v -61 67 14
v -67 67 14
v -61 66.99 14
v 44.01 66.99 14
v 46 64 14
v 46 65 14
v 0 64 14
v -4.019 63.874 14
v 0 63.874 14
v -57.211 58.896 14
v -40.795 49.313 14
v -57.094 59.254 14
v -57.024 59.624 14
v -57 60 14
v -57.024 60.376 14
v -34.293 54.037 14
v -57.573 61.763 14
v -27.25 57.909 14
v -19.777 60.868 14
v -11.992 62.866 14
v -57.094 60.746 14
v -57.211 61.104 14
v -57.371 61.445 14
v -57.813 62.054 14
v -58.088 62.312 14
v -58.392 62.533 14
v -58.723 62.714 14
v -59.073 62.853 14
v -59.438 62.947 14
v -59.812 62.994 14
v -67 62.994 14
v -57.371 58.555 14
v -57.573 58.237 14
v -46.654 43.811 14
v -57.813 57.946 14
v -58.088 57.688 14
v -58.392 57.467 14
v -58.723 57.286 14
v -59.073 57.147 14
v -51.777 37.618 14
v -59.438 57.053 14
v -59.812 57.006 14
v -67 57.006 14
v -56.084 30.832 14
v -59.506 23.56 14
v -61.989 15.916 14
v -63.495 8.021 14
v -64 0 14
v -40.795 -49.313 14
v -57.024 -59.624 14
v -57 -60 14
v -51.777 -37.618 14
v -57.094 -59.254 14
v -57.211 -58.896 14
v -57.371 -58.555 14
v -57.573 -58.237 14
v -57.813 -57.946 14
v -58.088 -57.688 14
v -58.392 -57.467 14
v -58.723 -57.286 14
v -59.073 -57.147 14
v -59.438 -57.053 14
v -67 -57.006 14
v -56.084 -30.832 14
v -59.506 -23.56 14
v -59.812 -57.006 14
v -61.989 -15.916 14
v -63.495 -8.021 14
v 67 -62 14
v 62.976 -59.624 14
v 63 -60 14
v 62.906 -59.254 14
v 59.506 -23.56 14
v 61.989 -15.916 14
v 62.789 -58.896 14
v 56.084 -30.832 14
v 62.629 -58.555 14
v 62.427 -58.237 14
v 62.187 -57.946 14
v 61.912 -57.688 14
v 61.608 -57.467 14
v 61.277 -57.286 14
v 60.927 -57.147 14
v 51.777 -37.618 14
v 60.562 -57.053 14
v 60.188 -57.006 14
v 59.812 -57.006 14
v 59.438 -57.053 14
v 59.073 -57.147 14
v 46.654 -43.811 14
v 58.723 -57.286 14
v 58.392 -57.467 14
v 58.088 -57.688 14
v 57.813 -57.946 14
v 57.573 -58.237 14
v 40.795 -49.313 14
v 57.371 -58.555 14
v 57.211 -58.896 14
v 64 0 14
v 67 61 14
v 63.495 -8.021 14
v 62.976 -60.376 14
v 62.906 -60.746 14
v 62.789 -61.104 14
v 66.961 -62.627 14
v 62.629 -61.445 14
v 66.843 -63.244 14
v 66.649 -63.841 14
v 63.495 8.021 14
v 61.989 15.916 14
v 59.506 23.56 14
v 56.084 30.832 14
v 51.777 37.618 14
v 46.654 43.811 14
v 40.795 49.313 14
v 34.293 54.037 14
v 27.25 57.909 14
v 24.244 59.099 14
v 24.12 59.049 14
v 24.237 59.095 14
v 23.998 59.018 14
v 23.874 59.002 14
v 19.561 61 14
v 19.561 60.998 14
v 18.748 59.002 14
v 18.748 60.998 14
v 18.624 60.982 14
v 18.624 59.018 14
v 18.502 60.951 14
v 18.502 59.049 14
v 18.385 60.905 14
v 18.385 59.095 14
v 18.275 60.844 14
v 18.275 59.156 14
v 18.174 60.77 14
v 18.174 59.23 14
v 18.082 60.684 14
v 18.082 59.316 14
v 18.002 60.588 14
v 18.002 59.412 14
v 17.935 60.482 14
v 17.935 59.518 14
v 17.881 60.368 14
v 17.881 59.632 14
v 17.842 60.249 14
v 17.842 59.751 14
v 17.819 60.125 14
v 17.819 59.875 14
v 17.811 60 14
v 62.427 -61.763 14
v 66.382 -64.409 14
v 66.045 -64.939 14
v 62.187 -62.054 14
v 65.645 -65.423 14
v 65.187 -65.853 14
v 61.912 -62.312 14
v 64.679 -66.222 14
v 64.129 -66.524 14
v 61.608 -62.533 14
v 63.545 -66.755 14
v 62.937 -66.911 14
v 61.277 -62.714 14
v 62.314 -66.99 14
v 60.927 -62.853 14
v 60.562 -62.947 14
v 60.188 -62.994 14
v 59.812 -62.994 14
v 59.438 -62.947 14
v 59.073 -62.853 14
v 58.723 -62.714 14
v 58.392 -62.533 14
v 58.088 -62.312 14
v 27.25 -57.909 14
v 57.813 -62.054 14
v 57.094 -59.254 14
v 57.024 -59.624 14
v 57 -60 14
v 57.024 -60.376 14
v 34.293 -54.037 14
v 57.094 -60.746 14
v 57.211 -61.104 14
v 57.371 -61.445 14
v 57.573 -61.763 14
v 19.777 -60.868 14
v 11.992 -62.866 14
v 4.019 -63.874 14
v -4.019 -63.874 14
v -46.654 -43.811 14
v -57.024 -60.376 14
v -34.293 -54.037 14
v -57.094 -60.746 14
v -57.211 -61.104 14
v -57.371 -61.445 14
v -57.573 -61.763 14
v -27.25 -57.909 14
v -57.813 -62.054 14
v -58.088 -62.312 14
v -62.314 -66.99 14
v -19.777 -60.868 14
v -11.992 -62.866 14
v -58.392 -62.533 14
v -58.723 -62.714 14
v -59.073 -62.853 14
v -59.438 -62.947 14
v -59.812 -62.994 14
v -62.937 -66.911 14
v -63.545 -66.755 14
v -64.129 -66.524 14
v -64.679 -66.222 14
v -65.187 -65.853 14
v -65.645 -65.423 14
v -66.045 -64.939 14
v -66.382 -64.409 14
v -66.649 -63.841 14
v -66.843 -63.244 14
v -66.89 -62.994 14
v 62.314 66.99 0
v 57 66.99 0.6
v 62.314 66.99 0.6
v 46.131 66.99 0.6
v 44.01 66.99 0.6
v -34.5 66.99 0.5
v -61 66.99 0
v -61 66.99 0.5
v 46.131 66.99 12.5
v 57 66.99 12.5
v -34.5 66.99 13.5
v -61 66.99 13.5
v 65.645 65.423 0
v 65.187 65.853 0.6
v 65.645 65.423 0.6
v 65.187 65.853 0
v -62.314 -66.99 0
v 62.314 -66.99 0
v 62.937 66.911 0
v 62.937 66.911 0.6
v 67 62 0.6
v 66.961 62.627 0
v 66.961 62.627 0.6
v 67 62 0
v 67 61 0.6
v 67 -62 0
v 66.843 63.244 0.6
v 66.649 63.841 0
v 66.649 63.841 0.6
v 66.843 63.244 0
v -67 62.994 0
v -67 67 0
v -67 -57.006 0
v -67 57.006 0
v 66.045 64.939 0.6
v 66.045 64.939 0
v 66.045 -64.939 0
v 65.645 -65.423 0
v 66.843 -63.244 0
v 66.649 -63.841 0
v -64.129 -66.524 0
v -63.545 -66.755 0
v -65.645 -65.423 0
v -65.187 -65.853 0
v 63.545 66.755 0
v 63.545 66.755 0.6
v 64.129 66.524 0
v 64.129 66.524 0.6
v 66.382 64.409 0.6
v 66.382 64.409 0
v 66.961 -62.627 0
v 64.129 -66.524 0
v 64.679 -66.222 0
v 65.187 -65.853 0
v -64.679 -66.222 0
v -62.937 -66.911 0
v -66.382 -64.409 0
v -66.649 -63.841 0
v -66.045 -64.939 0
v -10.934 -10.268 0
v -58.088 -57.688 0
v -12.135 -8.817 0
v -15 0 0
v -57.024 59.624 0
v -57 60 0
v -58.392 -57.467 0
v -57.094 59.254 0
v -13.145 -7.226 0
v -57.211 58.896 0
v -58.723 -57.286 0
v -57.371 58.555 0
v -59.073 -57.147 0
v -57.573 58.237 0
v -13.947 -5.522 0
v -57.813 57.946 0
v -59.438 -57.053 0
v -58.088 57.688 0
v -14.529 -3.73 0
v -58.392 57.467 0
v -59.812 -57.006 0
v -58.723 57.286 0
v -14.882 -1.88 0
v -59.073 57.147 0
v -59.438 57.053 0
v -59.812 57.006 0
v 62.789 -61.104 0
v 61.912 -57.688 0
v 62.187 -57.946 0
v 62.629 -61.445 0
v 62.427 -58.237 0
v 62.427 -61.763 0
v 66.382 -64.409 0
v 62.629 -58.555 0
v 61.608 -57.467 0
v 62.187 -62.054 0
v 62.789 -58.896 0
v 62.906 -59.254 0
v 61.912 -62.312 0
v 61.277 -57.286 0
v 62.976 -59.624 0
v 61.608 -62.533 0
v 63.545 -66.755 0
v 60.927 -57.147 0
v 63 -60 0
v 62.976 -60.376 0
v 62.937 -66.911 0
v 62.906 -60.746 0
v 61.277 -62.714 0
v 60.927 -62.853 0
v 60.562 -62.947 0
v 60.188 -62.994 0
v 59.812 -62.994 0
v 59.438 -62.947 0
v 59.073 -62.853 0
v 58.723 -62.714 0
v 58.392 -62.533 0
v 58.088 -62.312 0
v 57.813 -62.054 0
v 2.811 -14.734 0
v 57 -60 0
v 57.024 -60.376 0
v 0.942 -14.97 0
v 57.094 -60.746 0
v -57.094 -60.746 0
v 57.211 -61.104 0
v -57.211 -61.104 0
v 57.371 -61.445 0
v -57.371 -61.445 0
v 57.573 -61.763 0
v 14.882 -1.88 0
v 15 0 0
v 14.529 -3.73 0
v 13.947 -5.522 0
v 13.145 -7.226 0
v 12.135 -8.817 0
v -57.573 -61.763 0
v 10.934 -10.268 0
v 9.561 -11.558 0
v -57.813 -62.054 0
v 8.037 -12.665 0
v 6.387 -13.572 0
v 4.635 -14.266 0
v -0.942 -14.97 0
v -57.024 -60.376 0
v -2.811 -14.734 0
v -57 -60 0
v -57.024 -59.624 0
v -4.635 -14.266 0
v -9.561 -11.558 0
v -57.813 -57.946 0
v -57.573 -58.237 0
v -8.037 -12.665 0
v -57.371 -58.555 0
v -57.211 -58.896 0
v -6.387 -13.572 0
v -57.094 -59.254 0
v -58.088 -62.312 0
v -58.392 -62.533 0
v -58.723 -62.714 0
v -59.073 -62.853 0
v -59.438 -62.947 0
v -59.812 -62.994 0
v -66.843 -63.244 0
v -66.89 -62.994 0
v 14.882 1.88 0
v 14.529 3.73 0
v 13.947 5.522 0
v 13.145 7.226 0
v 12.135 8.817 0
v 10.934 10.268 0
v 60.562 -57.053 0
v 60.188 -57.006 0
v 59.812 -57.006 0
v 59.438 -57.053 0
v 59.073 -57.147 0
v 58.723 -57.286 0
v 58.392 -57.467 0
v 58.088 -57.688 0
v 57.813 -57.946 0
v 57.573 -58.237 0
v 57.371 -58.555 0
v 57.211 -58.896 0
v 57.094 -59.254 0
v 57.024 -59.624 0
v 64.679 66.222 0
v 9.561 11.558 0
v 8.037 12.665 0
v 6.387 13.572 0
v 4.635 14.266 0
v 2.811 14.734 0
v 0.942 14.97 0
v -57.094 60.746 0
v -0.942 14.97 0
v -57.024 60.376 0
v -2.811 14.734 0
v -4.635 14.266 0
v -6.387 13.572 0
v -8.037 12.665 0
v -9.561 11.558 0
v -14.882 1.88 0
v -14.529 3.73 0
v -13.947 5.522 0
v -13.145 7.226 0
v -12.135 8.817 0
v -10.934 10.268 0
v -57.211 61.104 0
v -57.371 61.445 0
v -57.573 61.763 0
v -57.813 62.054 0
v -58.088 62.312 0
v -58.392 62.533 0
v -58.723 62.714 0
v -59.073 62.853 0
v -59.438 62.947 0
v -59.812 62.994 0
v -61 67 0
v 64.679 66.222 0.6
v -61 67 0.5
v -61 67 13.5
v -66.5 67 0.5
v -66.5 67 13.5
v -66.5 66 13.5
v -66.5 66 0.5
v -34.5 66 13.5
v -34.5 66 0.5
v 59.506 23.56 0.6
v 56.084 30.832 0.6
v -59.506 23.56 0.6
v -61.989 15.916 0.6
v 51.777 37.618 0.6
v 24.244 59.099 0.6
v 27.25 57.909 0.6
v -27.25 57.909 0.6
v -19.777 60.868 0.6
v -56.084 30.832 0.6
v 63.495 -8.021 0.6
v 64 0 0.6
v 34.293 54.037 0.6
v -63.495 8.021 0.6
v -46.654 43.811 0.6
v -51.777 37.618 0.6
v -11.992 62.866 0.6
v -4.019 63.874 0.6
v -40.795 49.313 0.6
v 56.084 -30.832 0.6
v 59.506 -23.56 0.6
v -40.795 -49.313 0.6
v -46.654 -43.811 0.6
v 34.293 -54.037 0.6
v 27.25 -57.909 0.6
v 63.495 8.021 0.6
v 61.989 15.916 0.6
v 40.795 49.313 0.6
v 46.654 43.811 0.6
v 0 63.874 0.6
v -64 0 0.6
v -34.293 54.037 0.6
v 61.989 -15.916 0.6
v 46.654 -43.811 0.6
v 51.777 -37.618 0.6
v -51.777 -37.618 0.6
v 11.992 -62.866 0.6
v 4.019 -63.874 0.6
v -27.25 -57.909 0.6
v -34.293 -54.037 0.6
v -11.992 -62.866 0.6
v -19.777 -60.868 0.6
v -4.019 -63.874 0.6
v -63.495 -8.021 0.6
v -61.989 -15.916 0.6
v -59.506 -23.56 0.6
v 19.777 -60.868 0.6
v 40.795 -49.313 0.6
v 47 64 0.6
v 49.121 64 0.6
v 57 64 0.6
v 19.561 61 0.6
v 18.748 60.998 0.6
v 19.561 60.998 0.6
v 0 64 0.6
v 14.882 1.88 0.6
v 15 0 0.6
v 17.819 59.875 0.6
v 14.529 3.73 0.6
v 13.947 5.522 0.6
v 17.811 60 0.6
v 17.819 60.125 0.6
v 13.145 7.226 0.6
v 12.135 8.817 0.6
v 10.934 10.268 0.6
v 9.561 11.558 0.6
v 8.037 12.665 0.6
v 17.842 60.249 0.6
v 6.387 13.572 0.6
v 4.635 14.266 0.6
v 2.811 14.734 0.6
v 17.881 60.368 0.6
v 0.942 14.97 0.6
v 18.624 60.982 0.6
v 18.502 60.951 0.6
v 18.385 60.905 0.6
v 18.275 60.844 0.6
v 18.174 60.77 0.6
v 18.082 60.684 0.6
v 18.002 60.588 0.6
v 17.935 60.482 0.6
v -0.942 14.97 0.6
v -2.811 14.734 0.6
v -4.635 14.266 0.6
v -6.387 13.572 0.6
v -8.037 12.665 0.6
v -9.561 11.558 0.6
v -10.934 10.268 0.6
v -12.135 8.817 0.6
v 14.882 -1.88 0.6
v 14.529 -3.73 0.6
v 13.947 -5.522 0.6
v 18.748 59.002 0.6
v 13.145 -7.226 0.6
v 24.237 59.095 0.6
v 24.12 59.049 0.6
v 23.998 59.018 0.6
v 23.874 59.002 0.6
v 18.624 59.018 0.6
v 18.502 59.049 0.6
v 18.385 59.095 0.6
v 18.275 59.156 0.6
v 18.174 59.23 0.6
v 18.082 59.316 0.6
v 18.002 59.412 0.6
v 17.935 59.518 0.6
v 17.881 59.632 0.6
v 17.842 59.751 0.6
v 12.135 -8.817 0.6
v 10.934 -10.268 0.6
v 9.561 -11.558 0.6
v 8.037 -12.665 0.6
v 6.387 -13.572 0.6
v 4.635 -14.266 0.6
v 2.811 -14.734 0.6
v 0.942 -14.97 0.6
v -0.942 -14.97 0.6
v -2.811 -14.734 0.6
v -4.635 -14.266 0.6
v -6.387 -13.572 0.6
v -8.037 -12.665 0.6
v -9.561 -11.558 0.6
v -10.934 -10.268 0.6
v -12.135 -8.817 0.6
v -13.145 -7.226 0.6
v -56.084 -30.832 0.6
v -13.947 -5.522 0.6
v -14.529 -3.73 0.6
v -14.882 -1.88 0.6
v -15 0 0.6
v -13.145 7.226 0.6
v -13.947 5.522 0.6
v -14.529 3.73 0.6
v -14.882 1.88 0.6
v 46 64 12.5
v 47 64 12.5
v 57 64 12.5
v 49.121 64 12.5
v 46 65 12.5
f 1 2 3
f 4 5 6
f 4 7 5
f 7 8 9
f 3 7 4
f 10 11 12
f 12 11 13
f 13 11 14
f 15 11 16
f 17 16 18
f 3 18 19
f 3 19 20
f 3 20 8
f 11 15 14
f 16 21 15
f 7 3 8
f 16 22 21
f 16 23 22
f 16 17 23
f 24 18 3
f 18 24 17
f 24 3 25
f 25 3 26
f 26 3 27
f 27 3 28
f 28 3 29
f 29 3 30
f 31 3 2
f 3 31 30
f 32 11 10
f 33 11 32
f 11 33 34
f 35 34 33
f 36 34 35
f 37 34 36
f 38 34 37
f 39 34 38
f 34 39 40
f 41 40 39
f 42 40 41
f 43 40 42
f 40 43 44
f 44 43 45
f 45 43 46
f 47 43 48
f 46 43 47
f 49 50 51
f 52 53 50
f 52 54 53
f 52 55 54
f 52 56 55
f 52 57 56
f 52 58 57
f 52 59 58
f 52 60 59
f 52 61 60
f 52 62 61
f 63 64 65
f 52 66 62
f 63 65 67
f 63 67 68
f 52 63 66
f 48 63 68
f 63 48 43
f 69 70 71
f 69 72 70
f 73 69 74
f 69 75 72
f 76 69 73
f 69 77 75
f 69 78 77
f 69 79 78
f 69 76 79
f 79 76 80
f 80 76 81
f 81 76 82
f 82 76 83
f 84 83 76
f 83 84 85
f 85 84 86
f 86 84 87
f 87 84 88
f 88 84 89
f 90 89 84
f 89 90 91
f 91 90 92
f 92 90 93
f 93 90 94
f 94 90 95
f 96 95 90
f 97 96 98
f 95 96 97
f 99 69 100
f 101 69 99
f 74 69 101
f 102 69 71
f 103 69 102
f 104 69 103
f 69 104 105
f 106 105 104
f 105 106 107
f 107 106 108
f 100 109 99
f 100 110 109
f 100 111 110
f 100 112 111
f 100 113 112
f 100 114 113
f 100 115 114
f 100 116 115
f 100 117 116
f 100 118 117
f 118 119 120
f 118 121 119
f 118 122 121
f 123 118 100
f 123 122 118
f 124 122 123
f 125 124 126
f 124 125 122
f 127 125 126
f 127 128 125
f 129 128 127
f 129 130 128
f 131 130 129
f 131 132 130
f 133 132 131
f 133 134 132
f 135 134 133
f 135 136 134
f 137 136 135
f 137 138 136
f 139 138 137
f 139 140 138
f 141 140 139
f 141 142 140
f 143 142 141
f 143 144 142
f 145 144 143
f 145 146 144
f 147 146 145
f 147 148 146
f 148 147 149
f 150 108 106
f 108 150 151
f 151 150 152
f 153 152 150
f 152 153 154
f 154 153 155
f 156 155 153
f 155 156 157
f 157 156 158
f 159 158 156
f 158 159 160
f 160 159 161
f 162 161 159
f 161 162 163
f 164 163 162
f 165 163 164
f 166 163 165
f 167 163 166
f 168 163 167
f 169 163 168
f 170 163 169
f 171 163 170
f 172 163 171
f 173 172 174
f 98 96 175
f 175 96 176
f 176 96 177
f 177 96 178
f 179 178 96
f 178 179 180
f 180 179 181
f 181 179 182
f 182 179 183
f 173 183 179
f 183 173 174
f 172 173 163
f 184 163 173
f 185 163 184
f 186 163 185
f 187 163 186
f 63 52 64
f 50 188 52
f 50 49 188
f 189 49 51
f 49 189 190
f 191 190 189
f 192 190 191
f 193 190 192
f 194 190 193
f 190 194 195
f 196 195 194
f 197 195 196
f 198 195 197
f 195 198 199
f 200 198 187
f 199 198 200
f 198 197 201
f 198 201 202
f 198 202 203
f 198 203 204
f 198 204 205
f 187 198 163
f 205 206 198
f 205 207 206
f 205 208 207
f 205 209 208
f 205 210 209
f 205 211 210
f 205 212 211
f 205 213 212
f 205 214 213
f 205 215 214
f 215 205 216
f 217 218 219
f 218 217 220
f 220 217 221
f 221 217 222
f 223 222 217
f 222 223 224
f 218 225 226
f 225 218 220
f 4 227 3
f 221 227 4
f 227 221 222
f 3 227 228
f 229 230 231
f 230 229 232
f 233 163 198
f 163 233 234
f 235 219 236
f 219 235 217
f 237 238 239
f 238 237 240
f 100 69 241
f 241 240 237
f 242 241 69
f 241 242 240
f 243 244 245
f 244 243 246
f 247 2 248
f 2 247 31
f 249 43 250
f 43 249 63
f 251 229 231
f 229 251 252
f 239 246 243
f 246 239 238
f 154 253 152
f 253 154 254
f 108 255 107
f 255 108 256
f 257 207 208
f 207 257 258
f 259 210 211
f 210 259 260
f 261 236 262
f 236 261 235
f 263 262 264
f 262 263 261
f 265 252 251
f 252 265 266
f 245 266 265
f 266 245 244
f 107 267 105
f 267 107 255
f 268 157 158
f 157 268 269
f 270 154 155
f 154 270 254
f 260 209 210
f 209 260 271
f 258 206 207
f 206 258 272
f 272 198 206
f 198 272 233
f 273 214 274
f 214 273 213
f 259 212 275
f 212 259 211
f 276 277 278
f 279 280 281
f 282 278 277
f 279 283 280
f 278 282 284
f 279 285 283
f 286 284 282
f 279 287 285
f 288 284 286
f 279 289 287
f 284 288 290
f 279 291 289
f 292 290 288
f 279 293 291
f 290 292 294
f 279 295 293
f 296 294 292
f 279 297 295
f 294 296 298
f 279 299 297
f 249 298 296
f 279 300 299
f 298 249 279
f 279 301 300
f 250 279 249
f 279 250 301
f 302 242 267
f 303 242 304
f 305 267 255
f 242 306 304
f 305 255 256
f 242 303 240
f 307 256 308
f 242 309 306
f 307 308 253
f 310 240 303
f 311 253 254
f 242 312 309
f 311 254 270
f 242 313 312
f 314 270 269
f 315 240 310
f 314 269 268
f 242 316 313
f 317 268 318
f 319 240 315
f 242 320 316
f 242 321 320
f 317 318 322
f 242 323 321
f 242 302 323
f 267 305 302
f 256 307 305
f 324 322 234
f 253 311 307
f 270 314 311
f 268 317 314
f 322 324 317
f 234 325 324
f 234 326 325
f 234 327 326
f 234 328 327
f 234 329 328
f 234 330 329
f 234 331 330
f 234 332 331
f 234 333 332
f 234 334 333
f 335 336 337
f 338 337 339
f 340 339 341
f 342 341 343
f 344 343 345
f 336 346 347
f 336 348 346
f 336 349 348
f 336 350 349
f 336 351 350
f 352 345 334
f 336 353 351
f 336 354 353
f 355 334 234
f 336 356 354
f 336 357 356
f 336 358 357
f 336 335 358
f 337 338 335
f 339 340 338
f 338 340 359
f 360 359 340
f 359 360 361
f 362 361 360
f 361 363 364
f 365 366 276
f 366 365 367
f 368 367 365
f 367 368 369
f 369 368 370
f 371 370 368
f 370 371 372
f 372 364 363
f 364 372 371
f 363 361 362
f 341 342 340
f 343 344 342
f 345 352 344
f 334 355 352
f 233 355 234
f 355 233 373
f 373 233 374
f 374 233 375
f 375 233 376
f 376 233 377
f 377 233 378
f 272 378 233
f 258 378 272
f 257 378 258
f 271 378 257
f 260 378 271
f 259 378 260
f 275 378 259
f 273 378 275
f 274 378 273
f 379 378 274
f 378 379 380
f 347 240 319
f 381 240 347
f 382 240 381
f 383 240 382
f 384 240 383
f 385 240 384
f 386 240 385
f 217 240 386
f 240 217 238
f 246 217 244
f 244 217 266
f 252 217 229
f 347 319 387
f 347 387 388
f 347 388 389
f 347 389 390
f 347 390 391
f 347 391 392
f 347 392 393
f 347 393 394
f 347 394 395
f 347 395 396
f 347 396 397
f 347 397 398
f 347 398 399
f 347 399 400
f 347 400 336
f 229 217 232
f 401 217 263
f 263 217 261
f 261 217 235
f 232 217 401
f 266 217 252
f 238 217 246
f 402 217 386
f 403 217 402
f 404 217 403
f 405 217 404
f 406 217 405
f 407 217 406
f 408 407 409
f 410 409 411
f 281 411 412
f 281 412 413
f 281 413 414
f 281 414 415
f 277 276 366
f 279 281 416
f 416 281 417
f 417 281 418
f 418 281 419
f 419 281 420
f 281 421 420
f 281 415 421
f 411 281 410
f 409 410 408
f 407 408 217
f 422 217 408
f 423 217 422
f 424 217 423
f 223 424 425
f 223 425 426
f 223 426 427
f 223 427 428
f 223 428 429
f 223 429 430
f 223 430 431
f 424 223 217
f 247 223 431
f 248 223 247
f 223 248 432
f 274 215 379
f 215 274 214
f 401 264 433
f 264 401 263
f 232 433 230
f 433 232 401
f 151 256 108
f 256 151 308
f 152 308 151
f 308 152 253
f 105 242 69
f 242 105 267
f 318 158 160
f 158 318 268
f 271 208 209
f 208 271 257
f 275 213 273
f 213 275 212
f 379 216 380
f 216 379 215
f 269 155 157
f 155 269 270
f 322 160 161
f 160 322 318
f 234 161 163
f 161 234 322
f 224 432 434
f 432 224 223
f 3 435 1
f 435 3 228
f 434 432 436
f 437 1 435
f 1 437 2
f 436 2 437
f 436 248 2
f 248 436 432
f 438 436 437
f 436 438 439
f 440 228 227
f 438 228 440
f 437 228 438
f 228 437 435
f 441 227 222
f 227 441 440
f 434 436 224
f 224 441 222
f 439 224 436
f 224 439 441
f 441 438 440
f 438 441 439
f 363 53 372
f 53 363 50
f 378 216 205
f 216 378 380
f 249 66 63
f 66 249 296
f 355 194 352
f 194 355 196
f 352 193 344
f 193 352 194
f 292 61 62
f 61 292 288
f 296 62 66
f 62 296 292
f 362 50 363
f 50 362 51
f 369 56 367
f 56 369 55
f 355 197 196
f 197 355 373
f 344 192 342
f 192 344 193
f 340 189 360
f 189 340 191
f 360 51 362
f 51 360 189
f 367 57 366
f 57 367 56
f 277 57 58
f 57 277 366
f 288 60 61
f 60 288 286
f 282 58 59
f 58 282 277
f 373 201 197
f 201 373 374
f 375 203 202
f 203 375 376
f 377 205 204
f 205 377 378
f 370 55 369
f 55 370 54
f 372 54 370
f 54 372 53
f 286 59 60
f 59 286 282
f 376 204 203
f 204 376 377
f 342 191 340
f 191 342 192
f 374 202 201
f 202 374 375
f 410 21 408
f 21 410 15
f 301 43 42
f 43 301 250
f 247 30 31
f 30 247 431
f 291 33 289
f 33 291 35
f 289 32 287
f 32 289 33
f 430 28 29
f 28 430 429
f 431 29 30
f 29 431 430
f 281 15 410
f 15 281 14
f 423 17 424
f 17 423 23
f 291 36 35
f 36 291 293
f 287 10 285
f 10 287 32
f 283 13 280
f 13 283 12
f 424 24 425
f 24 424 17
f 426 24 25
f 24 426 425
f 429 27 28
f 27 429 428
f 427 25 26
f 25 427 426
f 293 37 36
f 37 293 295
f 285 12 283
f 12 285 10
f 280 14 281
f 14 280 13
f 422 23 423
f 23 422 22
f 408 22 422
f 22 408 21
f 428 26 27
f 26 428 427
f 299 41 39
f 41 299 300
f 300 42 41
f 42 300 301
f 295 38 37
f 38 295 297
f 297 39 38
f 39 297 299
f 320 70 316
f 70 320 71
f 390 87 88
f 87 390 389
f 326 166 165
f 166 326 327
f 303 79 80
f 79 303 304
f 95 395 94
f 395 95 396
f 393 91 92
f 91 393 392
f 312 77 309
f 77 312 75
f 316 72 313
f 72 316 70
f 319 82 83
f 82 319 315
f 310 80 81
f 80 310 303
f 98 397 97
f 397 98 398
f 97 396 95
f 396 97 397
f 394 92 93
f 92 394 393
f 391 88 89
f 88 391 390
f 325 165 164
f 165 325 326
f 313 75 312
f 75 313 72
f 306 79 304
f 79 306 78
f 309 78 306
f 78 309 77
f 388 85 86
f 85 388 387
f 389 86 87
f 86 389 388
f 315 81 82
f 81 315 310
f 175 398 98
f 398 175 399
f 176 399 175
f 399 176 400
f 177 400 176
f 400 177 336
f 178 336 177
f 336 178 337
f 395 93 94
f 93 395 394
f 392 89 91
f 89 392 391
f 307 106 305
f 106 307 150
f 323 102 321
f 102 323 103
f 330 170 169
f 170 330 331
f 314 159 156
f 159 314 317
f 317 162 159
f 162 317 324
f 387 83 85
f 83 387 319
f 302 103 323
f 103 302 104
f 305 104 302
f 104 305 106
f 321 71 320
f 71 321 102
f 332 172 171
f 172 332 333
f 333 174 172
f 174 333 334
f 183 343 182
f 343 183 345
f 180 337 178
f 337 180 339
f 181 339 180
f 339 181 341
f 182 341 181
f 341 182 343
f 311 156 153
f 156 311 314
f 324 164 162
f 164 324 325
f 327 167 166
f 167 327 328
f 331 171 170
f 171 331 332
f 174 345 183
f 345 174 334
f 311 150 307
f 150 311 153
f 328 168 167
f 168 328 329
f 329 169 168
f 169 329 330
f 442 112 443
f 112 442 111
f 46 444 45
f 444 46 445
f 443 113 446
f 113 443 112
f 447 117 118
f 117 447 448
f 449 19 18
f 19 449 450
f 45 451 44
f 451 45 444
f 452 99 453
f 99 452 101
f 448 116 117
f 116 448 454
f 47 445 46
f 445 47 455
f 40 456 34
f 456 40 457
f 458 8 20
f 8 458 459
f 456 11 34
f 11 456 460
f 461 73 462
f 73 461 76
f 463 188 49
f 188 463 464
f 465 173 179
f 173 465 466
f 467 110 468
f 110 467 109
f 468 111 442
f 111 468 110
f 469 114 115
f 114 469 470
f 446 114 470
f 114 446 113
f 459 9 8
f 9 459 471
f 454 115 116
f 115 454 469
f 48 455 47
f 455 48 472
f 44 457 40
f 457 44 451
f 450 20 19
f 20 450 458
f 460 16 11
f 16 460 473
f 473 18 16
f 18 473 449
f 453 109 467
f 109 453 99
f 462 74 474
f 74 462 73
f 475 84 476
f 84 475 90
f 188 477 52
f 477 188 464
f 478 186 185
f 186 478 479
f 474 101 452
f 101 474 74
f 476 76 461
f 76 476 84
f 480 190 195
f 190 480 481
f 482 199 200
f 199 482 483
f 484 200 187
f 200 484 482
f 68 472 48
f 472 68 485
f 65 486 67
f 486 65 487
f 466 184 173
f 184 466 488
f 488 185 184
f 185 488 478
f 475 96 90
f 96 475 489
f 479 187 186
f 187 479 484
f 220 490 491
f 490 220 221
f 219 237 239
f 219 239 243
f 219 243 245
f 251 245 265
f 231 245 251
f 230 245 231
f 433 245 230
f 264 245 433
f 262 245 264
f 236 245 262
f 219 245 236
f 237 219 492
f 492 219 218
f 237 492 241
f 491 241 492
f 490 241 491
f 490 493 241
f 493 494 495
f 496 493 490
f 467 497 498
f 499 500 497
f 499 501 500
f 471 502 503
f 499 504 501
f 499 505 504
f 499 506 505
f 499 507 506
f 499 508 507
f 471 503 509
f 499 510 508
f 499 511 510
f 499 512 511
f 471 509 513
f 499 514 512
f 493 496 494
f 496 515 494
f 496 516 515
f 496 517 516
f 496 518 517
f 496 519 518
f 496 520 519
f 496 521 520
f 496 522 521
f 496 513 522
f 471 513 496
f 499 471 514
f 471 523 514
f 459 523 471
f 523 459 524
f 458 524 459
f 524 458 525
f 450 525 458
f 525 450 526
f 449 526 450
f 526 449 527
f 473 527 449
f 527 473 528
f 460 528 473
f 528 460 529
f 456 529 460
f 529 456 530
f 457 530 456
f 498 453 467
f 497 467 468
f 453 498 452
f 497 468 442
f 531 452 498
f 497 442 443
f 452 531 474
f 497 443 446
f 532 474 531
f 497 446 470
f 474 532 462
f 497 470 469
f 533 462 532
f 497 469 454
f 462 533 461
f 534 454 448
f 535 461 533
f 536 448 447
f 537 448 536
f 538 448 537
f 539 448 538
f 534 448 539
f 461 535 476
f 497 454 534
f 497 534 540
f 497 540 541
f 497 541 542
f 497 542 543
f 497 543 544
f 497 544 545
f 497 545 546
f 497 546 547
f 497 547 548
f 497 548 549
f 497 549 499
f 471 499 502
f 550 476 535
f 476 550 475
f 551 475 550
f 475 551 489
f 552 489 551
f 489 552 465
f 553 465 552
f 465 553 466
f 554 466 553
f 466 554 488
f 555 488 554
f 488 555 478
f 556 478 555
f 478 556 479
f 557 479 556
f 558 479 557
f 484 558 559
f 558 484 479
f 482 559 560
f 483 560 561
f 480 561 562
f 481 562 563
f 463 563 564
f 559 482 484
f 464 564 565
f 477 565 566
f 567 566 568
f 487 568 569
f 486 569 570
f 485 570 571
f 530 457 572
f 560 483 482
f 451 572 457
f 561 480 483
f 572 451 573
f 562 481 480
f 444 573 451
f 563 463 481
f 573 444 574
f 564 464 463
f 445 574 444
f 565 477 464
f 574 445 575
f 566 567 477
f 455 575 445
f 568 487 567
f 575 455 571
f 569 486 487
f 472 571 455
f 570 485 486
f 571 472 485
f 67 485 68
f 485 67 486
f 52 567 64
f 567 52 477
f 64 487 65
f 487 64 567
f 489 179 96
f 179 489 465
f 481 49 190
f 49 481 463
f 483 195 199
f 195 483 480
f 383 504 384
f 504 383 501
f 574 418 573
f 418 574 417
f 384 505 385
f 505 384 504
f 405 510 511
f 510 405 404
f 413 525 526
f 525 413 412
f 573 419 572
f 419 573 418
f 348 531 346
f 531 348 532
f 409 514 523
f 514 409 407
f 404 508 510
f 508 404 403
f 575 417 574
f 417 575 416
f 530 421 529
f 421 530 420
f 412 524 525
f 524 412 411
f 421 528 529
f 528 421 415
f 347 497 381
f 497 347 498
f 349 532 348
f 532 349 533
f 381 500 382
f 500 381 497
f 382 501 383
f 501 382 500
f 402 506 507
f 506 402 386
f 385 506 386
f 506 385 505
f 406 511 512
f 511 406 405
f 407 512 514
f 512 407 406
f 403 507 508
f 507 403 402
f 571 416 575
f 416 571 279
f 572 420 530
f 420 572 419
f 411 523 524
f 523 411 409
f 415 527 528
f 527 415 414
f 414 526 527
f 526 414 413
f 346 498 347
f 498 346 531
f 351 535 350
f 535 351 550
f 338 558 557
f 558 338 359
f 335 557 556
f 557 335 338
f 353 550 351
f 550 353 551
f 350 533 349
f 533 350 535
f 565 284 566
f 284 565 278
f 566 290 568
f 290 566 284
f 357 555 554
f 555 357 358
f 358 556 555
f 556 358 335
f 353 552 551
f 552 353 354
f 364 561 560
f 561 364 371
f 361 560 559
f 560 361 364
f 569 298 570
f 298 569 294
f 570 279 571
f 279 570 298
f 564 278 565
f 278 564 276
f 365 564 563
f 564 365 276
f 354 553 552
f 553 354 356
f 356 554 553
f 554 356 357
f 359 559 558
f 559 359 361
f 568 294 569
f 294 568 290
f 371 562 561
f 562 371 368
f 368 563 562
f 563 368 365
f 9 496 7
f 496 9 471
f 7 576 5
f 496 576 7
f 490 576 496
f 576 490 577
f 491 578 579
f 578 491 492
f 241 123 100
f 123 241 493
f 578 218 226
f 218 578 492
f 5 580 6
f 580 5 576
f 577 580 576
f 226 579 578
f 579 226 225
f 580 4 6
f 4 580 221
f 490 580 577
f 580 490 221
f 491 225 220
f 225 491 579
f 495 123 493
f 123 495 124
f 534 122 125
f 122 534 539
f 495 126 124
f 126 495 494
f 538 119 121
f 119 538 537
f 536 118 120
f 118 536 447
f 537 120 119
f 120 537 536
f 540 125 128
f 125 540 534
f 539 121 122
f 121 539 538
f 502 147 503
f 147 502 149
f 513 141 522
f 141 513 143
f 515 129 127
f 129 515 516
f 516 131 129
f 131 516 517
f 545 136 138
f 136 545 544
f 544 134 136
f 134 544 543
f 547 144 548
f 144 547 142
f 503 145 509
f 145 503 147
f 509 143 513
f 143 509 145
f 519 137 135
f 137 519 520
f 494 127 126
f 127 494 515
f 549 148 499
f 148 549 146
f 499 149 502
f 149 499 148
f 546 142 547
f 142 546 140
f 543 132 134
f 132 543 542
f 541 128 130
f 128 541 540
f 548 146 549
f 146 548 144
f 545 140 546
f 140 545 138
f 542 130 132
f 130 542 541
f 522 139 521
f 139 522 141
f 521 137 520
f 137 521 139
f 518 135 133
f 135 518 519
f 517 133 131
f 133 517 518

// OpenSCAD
$fn = 50;


union() {
	difference() {
		union() {
			translate(v = [0, 0, 0]) {
				rotate(a = [0, 0, 0]) {
					hull() {
						translate(v = [-62.0000000000, 62.0000000000, 0]) {
							rotate(a = [0, 0, 0]) {
								translate(v = [0, 0, 0]) {
									rotate(a = [0, 0, 0]) {
										cylinder(h = 14, r = 5);
									}
								}
							}
						}
						translate(v = [62.0000000000, 62.0000000000, 0]) {
							rotate(a = [0, 0, 0]) {
								translate(v = [0, 0, 0]) {
									rotate(a = [0, 0, 0]) {
										cylinder(h = 14, r = 5);
									}
								}
							}
						}
						translate(v = [-62.0000000000, -62.0000000000, 0]) {
							rotate(a = [0, 0, 0]) {
								translate(v = [0, 0, 0]) {
									rotate(a = [0, 0, 0]) {
										cylinder(h = 14, r = 5);
									}
								}
							}
						}
						translate(v = [62.0000000000, -62.0000000000, 0]) {
							rotate(a = [0, 0, 0]) {
								translate(v = [0, 0, 0]) {
									rotate(a = [0, 0, 0]) {
										cylinder(h = 14, r = 5);
									}
								}
							}
						}
					}
				}
			}
			translate(v = [-67.0000000000, 61.0000000000, 0]) {
				rotate(a = [0, 0, 0]) {
					cube(size = [6, 6, 14]);
				}
			}
		}
		union() {
			#translate(v = [-66.5000000000, 66.0000000000, 0.5000000000]) {
				rotate(a = [0, 0, 0]) {
					cube(size = [32, 1, 13.0000000000]);
				}
			}
			translate(v = [-67.5000000000, -60.0000000000, -125]) {
				rotate(a = [0, 0, 0]) {
					hull() {
						translate(v = [7.5000000000, 0, 0]) {
							rotate(a = [0, 0, 0]) {
								translate(v = [0, 0, 0]) {
									rotate(a = [0, 0, 0]) {
										cylinder(h = 250, r = 3.0000000000);
									}
								}
							}
						}
						translate(v = [-7.5000000000, 0, 0]) {
							rotate(a = [0, 0, 0]) {
								translate(v = [0, 0, 0]) {
									rotate(a = [0, 0, 0]) {
										cylinder(h = 250, r = 3.0000000000);
									}
								}
							}
						}
					}
				}
			}
			translate(v = [-67.5000000000, 60.0000000000, -125]) {
				rotate(a = [0, 0, 0]) {
					hull() {
						translate(v = [7.5000000000, 0, 0]) {
							rotate(a = [0, 0, 0]) {
								translate(v = [0, 0, 0]) {
									rotate(a = [0, 0, 0]) {
										cylinder(h = 250, r = 3.0000000000);
									}
								}
							}
						}
						translate(v = [-7.5000000000, 0, 0]) {
							rotate(a = [0, 0, 0]) {
								translate(v = [0, 0, 0]) {
									rotate(a = [0, 0, 0]) {
										cylinder(h = 250, r = 3.0000000000);
									}
								}
							}
						}
					}
				}
			}
			translate(v = [60.0000000000, -60.0000000000, -125.0000000000]) {
				rotate(a = [0, 0, 0]) {
					cylinder(h = 250, r = 3.0000000000);
				}
			}
			translate(v = [0, 0, 0.6000000000]) {
				rotate(a = [0, 0, 0]) {
					cylinder(h = 16.4000000000, r = 64.0000000000);
				}
			}
			translate(v = [0, 0, -7.0000000000]) {
				rotate(a = [0, 0, 0]) {
					cylinder(h = 14, r = 15.0000000000);
				}
			}
			translate(v = [0.0000000000, 61.0000000000, 0.6000000000]) {
				rotate(a = [0, 0, 0]) {
					cube(size = [67.0000000000, 3, 16.4000000000]);
				}
			}
			translate(v = [57.0000000000, 61.0000000000, 0.6000000000]) {
				rotate(a = [0, 0, 0]) {
					cube(size = [10, 6, 16.4000000000]);
				}
			}
			translate(v = [46.0000000000, 61.0000000000, 12.5000000000]) {
				rotate(a = [0, 0, 0]) {
					cube(size = [21, 6, 1.5000000000]);
				}
			}
			translate(v = [43.2500000000, 67.7500000000, 0.6000000000]) {
				rotate(a = [0, 0, -45]) {
					cube(size = [7.5000000000, 1.5000000000, 16.4000000000]);
				}
			}
			translate(v = [12.0610000000, 59.0000000000, 0.6000000000]) {
				rotate(a = [0, 0, 0]) {
					cube(size = [7.5000000000, 2, 13.4000000000]);
				}
			}
		}
	}
	union() {
		translate(v = [21.3110000000, 60.0000000000, 0]) {
			rotate(a = [0, 0, 0]) {
				hull() {
					translate(v = [2.5000000000, 0, 0]) {
						rotate(a = [0, 0, 0]) {
							#translate(v = [0, 0, 0]) {
								rotate(a = [0, 0, 0]) {
									cylinder(h = 14, r = 1.0000000000);
								}
							}
						}
					}
					translate(v = [-2.5000000000, 0, 0]) {
						rotate(a = [0, 0, 0]) {
							#translate(v = [0, 0, 0]) {
								rotate(a = [0, 0, 0]) {
									cylinder(h = 14, r = 1.0000000000);
								}
							}
						}
					}
				}
			}
		}
	}
}
